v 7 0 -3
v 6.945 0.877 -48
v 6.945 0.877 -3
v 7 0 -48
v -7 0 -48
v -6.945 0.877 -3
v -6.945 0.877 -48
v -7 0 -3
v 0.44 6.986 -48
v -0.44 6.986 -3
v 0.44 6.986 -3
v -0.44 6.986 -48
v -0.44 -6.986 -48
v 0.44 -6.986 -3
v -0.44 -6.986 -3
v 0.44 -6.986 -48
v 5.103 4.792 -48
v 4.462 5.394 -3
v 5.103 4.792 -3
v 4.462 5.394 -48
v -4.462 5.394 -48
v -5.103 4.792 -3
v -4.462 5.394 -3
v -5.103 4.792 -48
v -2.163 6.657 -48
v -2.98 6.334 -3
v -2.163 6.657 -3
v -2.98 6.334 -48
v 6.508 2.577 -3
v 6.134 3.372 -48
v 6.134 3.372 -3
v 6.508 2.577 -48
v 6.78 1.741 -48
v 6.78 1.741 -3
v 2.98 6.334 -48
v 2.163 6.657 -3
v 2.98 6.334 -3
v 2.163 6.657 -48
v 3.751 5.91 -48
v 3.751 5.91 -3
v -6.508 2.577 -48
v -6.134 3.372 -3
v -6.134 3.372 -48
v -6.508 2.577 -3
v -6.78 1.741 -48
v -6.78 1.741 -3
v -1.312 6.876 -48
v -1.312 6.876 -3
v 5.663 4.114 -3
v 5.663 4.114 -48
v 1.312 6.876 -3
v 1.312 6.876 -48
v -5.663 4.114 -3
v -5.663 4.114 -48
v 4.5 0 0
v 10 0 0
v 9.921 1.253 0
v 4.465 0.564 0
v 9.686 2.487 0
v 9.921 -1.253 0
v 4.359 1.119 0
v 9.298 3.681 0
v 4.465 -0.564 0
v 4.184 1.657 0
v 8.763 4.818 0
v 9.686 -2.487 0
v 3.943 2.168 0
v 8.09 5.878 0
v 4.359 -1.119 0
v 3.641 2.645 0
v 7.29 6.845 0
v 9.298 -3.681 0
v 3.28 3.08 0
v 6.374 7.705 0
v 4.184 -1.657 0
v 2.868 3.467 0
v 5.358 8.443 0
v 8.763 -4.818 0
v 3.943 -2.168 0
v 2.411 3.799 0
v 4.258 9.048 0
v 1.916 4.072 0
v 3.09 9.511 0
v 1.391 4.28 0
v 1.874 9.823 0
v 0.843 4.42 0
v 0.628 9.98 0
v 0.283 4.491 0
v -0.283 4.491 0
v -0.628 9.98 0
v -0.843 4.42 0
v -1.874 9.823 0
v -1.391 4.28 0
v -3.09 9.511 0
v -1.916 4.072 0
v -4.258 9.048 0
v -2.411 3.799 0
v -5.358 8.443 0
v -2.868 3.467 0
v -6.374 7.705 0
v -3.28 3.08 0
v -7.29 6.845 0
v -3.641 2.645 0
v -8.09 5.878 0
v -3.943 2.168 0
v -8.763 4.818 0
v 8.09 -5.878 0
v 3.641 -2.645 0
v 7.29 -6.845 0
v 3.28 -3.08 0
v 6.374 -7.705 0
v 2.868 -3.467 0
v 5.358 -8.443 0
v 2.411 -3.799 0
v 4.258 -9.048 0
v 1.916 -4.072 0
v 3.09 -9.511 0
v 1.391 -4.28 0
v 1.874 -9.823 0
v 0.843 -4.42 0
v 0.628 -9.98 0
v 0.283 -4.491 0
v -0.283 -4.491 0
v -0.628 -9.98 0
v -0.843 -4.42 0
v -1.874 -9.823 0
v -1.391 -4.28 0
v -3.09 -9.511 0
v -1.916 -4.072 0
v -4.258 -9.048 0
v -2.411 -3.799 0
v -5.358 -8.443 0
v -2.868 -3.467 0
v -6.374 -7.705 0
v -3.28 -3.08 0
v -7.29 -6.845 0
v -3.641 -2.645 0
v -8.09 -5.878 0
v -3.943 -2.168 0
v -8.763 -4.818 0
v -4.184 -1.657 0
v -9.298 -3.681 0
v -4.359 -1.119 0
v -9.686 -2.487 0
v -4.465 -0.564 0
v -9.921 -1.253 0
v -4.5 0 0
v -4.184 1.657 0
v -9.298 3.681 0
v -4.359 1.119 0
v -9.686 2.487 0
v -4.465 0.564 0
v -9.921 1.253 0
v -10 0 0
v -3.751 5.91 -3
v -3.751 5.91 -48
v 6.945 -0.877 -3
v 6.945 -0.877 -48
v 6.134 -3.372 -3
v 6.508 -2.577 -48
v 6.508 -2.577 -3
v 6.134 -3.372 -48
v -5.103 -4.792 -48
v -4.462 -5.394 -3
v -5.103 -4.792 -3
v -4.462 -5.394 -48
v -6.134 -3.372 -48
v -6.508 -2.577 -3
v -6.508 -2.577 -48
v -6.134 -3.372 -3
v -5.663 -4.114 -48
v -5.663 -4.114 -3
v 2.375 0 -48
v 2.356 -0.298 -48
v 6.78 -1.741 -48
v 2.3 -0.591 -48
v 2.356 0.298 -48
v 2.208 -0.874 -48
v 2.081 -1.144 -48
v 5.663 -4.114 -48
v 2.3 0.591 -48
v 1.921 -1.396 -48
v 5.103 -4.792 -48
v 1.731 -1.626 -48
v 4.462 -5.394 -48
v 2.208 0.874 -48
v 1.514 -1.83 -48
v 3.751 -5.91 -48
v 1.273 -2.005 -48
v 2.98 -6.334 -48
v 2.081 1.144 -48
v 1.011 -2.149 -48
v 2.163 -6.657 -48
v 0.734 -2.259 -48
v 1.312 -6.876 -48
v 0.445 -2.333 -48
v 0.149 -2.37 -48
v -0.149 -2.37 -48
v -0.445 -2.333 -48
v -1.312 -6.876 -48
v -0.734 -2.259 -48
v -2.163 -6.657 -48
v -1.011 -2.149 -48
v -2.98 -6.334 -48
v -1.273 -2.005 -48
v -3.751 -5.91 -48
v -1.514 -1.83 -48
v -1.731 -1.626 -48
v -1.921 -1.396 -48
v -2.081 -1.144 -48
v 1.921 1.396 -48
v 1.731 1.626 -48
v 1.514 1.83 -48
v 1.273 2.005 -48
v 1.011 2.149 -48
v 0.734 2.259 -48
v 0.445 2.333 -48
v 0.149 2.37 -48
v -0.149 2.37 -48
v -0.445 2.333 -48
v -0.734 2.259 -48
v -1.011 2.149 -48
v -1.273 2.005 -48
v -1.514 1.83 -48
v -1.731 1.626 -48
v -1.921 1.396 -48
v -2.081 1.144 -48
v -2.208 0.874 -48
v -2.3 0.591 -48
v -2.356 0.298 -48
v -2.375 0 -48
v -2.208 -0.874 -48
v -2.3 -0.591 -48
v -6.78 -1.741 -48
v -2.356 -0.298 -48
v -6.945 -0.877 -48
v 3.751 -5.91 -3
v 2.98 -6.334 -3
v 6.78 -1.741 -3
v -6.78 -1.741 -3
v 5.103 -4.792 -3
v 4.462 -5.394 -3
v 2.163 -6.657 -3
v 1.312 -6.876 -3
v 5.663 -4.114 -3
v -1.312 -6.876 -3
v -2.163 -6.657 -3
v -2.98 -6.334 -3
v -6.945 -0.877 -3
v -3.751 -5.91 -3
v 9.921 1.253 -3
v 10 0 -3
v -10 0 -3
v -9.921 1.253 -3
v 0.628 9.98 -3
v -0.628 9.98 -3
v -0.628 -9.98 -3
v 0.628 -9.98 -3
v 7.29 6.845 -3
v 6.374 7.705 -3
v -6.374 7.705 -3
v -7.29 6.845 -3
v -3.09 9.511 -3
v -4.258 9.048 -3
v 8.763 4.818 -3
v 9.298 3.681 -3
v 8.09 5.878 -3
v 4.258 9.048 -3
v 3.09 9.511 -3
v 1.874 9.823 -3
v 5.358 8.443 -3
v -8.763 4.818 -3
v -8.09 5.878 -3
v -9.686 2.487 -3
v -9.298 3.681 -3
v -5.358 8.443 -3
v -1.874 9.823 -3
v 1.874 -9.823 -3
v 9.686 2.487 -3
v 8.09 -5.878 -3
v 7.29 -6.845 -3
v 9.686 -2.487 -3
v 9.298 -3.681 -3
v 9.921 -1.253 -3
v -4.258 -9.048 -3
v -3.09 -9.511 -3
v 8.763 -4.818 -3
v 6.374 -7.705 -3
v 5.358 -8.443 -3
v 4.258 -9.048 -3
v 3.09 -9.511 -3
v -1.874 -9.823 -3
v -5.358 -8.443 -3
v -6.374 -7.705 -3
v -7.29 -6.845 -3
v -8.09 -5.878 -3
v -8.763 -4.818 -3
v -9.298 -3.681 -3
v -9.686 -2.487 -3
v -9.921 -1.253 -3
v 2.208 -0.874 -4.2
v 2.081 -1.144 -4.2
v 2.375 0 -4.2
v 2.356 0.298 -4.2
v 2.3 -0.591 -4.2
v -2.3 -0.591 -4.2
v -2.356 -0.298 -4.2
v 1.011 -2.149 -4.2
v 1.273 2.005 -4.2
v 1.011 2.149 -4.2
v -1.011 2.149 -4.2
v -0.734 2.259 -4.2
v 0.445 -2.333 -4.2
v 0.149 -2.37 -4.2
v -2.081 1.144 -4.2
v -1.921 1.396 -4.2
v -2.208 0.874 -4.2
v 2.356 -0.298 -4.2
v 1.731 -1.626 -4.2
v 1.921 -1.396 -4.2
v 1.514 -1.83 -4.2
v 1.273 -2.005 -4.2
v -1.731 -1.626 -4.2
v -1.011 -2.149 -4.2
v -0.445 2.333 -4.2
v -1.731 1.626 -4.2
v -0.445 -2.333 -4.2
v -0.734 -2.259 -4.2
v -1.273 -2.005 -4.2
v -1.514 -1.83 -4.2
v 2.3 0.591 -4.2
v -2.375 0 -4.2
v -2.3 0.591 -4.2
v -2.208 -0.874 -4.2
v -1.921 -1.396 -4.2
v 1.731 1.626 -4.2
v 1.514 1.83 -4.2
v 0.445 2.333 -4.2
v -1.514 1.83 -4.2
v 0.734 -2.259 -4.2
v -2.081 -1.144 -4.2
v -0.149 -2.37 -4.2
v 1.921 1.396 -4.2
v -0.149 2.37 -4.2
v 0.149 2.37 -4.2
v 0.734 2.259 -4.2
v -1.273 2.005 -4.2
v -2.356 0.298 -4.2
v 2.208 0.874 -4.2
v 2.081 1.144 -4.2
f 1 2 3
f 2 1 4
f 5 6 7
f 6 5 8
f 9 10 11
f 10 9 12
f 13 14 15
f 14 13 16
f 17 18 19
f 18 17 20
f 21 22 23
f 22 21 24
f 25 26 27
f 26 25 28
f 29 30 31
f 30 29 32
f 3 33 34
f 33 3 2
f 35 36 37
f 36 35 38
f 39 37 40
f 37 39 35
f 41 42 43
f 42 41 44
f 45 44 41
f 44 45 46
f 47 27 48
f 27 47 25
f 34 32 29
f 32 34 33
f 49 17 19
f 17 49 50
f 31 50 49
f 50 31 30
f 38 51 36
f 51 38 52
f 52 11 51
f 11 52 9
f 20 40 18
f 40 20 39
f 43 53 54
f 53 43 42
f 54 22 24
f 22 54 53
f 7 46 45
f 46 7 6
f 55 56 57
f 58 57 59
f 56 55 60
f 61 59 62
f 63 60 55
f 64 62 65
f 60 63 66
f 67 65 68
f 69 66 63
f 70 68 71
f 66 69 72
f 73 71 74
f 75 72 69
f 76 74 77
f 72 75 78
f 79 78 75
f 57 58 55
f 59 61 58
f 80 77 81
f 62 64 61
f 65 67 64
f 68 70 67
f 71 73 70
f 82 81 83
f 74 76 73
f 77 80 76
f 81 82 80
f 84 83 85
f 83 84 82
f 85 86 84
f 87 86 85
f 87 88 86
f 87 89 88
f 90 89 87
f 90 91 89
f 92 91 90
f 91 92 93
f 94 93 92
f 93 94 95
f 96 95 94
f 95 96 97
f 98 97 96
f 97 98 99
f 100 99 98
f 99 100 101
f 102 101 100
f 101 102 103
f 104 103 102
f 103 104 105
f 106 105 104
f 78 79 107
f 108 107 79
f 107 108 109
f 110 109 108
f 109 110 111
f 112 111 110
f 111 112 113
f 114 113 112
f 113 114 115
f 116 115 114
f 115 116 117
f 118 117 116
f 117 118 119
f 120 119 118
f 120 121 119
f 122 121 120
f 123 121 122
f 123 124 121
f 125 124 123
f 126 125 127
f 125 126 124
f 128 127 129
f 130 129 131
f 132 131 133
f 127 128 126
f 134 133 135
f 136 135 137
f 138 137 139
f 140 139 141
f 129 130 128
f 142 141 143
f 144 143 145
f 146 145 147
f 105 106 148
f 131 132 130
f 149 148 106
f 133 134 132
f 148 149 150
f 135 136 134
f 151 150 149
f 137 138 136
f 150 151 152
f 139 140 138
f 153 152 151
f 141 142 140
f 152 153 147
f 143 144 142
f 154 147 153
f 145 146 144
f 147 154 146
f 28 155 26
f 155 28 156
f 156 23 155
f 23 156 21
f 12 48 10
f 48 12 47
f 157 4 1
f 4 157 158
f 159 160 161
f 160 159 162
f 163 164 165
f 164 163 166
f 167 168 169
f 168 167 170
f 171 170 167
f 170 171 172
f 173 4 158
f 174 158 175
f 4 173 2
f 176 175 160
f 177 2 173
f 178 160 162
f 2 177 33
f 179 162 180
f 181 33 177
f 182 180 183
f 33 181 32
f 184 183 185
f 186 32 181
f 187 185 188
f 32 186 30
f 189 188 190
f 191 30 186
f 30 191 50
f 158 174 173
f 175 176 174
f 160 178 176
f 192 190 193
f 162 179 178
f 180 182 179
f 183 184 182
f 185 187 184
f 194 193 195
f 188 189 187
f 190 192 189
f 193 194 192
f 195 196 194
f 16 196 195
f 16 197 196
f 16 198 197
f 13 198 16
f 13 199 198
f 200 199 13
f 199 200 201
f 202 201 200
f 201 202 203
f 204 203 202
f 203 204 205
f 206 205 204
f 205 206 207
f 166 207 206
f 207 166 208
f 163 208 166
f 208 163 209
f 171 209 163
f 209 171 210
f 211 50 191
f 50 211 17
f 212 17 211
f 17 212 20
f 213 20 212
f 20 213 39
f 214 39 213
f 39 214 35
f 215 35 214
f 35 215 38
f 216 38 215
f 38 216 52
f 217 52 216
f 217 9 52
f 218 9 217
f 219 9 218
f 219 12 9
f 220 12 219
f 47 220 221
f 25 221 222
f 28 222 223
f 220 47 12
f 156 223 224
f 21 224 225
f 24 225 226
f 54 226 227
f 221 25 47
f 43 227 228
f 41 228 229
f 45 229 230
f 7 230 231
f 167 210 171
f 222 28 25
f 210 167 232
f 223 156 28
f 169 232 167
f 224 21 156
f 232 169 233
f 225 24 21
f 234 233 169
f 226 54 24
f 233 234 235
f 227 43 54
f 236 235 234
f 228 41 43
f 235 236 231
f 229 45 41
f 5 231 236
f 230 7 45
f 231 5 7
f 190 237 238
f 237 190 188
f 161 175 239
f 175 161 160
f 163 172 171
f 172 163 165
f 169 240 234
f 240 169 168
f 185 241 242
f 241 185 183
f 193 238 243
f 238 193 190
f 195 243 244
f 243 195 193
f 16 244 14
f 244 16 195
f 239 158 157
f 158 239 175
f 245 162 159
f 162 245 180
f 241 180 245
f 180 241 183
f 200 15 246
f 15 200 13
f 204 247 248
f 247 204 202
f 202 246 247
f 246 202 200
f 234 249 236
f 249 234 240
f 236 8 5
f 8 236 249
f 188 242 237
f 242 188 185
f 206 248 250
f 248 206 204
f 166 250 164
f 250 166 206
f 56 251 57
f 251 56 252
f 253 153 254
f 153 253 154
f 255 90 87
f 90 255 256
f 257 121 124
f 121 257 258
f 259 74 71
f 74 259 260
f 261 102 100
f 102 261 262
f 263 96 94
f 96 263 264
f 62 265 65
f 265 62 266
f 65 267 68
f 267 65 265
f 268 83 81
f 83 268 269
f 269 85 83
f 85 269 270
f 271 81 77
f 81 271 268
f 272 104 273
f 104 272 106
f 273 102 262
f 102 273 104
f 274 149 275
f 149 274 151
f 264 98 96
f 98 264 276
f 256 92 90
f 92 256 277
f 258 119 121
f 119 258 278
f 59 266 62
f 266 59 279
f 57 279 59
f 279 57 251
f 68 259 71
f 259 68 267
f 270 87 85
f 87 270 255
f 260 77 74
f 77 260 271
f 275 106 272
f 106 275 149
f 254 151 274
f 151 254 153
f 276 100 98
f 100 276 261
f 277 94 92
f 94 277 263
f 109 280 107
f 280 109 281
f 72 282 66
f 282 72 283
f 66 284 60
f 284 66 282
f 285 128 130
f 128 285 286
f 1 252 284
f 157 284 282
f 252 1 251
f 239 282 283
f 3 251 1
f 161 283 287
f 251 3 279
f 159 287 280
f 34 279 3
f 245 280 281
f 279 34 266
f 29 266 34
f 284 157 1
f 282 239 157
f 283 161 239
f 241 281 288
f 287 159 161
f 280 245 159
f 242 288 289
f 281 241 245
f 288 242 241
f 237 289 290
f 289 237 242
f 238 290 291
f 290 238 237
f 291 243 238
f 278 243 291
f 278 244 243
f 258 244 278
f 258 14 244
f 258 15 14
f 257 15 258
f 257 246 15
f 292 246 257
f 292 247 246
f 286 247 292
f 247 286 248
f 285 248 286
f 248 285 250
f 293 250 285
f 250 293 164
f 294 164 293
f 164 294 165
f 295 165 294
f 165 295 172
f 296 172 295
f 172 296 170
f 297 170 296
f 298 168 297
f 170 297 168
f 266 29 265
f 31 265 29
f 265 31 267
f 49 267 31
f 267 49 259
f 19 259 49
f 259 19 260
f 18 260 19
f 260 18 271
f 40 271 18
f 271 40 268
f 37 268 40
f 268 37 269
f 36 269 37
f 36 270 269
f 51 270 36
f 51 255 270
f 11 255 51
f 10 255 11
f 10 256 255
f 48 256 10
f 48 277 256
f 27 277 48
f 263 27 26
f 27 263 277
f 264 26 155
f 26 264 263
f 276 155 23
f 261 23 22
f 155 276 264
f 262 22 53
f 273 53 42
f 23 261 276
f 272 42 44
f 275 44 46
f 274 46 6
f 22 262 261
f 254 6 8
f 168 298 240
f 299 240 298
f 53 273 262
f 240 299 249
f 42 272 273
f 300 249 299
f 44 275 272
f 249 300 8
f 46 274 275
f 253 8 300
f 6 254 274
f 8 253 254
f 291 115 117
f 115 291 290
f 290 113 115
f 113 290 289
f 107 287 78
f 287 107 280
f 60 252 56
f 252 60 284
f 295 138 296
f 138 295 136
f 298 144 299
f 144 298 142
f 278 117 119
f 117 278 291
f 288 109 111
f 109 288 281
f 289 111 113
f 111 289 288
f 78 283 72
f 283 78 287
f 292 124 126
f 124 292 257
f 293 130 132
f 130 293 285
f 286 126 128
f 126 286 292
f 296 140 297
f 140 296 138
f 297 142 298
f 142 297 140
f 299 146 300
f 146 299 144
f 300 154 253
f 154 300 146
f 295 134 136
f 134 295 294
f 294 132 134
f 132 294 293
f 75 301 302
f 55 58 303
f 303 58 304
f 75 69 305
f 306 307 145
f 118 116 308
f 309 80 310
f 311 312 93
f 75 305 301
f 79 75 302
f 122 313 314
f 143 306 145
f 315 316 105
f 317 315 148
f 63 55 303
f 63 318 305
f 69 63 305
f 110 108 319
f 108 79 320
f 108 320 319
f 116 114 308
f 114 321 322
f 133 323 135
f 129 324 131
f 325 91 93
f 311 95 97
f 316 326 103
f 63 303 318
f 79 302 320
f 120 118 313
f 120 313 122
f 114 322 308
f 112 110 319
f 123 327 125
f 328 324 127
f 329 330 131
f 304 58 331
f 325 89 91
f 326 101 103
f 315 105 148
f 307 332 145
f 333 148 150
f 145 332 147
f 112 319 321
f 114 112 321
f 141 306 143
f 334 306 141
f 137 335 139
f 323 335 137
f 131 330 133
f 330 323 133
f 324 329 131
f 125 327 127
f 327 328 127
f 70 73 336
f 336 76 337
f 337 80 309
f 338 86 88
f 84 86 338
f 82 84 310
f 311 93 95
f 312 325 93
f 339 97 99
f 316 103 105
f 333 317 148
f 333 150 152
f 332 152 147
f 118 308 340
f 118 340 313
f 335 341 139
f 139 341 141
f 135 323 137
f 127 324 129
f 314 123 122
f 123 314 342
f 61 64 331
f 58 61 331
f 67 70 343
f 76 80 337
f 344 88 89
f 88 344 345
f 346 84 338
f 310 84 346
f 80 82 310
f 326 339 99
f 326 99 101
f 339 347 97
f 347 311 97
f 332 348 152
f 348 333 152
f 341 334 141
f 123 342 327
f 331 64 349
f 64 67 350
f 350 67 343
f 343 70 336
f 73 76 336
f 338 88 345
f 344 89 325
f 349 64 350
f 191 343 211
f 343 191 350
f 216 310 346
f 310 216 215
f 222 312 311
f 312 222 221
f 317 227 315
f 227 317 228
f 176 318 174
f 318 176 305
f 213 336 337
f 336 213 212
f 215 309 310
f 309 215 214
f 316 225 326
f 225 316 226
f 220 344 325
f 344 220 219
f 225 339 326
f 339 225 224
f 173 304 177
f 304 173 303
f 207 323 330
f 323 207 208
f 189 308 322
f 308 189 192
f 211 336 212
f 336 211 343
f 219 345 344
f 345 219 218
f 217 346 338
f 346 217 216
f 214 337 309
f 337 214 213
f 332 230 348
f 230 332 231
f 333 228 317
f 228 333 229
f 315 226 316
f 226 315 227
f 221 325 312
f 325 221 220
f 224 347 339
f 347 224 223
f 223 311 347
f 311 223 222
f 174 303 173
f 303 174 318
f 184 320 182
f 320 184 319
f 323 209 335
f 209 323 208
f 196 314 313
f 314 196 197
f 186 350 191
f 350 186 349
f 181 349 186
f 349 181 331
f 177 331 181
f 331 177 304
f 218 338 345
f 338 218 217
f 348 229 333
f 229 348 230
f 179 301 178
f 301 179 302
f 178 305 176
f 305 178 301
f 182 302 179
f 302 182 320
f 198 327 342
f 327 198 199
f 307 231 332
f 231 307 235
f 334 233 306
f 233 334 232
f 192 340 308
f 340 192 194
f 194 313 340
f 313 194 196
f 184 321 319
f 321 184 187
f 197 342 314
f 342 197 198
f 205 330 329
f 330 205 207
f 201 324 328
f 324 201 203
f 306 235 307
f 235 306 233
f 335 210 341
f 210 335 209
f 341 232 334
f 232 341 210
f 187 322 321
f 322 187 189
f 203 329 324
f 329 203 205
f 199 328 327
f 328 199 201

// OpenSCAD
$fn = 50;


difference() {
	union() {
		translate(v = [0, 0, -48.0000000000]) {
			cylinder(h = 48, r = 7.0000000000);
		}
		translate(v = [0, 0, -3.0000000000]) {
			cylinder(h = 3, r = 10.0000000000);
		}
	}
	union() {
		translate(v = [0, 0, 0]) {
			rotate(a = [0, 0, 0]) {
				difference() {
					union() {
						#translate(v = [0, 0, -48.0000000000]) {
							cylinder(h = 48, r = 2.2500000000);
						}
						#translate(v = [0, 0, -4.2000000000]) {
							cylinder(h = 4.2000000000, r = 7.0000000000, r1 = 2.3750000000, r2 = 4.5000000000);
						}
						#translate(v = [0, 0, -48.0000000000]) {
							cylinder(h = 48, r = 2.3750000000);
						}
						#translate(v = [0, 0, -48.0000000000]) {
							cylinder(h = 48, r = 2.2500000000);
						}
					}
					union();
				}
			}
		}
	}
}
